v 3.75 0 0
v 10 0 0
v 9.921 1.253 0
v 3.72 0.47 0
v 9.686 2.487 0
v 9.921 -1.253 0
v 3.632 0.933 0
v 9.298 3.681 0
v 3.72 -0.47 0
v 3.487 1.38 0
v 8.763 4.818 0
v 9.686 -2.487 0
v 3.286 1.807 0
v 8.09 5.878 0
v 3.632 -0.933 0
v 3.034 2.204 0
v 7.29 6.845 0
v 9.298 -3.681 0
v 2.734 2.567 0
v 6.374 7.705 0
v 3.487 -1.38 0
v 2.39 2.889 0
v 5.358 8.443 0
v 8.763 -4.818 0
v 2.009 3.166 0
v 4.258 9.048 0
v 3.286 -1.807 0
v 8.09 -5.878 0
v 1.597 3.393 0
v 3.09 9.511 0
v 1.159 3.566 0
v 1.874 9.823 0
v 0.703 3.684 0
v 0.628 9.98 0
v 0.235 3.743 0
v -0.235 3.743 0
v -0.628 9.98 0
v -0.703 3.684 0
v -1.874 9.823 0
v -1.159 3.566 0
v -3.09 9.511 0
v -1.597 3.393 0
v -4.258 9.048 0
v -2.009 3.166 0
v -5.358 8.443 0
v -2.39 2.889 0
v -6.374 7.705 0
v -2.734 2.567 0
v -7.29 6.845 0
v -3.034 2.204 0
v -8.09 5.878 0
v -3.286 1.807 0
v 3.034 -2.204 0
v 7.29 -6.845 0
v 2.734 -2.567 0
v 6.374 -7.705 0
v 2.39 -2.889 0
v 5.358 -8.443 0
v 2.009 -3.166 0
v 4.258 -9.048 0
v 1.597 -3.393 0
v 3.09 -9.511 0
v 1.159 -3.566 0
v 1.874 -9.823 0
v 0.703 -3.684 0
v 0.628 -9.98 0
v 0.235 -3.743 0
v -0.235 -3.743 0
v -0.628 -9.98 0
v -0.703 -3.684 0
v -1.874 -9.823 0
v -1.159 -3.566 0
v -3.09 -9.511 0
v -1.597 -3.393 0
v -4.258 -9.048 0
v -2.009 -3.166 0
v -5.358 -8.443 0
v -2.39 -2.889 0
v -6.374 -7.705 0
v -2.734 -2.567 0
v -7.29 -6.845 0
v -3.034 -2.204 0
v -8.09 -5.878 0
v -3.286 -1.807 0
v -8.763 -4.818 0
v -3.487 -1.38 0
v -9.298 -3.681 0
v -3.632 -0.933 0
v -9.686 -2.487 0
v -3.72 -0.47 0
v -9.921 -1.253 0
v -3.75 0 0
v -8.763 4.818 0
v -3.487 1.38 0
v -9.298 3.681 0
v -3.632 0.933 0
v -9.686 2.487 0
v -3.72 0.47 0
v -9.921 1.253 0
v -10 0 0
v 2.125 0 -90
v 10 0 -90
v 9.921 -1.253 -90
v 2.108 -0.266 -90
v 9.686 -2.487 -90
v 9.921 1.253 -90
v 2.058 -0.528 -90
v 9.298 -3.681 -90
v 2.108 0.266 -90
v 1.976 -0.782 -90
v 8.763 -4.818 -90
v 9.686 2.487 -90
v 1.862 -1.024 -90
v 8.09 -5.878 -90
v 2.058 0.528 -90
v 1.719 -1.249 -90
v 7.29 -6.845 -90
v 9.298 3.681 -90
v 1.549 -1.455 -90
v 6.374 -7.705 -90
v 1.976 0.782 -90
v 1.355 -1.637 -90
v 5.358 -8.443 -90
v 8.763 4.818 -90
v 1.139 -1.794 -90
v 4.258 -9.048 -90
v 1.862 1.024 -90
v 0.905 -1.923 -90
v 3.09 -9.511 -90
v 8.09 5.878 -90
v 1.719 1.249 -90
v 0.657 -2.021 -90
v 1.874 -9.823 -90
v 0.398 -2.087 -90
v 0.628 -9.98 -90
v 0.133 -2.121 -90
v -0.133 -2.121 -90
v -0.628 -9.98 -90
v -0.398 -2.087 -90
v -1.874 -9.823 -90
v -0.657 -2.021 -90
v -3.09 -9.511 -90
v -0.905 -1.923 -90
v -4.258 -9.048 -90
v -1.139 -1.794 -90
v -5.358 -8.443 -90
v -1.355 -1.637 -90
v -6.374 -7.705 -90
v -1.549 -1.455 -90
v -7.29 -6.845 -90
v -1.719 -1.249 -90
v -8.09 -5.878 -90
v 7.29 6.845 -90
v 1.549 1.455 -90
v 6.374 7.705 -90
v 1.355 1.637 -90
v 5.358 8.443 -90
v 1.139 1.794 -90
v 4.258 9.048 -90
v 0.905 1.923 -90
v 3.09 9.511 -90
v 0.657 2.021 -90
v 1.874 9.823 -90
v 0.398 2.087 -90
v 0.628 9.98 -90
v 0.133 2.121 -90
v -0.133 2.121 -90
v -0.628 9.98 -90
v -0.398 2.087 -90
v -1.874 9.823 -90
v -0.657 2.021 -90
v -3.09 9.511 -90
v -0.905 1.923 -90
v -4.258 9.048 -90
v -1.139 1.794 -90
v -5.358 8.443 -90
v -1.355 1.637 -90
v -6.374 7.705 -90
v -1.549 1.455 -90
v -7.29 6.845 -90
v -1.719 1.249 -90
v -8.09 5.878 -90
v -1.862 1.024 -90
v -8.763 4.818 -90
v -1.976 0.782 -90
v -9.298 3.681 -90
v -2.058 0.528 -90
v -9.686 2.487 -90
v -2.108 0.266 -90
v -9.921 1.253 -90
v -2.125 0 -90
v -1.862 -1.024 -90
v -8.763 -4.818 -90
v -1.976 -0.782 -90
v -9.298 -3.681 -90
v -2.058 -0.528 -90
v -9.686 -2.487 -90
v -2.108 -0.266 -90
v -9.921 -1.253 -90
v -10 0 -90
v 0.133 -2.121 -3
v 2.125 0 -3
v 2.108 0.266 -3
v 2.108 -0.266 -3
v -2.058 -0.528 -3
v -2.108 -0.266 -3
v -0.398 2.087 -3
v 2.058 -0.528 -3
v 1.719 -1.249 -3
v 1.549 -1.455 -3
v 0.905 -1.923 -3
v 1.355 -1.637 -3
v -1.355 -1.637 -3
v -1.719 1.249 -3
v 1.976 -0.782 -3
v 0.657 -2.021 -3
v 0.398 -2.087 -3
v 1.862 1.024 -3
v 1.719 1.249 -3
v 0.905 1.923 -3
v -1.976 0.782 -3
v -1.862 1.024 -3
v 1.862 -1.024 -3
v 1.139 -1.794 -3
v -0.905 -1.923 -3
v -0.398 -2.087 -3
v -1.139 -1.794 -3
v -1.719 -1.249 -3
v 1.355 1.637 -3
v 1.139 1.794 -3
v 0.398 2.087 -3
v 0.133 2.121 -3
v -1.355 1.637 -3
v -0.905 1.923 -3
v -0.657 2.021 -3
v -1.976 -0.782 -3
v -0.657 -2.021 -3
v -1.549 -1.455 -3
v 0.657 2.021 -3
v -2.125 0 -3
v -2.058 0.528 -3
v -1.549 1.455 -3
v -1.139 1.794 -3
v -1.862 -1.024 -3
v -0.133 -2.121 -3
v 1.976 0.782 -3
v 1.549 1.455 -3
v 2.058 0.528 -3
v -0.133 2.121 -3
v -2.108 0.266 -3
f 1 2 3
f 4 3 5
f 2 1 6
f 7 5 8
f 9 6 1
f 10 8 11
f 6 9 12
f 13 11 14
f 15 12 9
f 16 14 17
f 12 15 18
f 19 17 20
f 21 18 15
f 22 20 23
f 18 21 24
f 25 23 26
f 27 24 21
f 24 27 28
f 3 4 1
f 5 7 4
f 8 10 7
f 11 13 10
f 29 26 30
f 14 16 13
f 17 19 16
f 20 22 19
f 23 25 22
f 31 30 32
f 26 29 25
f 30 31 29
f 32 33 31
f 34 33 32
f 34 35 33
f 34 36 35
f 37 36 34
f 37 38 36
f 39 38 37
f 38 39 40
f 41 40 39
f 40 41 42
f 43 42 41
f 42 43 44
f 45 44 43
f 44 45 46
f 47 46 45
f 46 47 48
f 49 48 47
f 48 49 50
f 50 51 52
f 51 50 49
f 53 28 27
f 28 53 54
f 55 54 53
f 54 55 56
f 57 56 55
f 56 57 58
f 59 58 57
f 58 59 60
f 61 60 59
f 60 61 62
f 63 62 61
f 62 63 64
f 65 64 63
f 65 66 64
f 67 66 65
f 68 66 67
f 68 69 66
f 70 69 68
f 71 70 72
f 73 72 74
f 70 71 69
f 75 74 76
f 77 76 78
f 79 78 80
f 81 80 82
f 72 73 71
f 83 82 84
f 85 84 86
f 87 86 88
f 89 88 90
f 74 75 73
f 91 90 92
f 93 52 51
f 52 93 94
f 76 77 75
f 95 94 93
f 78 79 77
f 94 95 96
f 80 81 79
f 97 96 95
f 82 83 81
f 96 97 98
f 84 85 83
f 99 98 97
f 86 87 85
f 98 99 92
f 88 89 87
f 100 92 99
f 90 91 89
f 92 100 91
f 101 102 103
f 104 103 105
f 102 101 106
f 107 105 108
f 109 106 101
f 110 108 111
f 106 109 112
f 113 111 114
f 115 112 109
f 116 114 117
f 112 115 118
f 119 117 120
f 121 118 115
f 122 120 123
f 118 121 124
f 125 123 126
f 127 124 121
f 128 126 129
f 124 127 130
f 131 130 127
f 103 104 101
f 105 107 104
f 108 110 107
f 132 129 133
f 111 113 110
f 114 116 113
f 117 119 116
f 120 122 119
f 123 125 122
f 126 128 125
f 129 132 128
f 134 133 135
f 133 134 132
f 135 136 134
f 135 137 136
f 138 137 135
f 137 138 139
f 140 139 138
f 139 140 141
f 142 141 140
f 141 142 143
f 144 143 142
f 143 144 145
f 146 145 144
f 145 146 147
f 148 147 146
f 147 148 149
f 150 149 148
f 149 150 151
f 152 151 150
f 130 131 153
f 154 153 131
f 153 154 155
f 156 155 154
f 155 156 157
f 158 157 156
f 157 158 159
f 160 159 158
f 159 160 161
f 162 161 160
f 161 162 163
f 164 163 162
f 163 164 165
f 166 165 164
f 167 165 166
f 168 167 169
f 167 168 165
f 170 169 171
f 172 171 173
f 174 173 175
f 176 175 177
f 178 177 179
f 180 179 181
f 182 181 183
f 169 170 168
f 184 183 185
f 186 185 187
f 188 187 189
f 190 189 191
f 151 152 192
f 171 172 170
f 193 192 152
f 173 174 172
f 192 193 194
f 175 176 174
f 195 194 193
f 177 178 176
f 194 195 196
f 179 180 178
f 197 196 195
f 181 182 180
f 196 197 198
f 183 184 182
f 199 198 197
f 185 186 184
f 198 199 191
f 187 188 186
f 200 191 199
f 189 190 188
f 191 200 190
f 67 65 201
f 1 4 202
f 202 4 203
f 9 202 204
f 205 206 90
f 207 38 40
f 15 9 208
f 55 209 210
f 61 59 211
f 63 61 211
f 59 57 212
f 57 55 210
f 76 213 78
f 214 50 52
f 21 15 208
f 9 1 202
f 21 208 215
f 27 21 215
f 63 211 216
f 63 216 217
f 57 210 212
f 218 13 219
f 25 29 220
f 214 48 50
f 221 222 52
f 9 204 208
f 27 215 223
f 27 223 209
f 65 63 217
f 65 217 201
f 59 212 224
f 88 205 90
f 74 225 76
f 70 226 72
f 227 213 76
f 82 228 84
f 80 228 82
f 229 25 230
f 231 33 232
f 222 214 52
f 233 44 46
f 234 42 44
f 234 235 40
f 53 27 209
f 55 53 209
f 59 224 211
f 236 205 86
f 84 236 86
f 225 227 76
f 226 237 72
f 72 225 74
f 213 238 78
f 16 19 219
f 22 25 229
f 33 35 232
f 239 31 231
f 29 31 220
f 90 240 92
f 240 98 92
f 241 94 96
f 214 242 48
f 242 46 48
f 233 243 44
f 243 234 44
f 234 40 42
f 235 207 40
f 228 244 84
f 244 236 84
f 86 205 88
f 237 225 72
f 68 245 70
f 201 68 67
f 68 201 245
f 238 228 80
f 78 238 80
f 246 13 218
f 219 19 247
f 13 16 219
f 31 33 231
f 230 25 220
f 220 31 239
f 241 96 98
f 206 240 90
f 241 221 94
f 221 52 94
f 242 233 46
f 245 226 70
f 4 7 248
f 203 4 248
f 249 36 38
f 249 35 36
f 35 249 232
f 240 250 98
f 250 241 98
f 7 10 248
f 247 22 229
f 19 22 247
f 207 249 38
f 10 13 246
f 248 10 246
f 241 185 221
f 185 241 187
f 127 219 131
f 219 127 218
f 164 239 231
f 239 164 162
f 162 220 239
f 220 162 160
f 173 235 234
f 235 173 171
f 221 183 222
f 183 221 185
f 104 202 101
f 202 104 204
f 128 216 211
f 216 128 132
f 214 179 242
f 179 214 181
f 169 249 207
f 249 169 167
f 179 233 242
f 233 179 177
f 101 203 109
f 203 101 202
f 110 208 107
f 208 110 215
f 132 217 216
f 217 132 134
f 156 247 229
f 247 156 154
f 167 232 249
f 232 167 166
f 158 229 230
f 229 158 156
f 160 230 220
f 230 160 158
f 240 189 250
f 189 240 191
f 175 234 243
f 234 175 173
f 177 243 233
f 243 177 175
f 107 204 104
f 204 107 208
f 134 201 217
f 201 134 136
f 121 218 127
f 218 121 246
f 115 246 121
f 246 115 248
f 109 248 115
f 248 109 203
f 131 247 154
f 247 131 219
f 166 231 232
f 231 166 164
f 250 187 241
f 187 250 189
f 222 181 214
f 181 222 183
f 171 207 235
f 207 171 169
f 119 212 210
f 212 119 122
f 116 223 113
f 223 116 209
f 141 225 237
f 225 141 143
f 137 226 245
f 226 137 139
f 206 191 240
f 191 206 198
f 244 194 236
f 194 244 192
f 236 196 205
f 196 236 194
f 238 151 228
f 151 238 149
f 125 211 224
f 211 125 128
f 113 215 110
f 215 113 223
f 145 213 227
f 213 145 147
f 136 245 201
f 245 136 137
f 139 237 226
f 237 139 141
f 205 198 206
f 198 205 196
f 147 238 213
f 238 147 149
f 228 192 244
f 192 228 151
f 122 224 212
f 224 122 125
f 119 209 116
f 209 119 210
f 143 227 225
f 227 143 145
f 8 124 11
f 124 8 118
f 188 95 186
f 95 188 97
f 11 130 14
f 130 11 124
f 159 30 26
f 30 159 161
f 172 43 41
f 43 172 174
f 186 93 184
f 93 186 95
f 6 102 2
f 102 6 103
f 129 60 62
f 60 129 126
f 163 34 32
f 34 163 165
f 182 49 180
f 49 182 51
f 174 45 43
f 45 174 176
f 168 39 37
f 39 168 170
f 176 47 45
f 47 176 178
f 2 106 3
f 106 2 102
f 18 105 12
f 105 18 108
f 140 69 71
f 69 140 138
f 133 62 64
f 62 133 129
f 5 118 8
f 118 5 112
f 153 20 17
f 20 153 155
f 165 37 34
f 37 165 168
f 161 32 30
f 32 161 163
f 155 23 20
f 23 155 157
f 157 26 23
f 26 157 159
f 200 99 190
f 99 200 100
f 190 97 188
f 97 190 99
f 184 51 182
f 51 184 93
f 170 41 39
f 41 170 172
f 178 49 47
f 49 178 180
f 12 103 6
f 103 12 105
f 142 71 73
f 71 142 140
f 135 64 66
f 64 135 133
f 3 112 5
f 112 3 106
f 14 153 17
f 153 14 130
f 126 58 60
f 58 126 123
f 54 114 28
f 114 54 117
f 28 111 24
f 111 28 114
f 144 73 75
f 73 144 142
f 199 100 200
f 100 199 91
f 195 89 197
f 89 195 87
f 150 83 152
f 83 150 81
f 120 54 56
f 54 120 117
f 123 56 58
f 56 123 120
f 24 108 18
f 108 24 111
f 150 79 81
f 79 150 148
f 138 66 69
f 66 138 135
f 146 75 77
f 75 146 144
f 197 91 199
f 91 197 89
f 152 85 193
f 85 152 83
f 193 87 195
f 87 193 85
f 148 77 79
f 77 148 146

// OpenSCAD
$fn = 50;


difference() {
	union() {
		translate(v = [0, 0, -90.0000000000]) {
			cylinder(h = 90, r = 10.0000000000);
		}
		cylinder(h = 0, r = 16.0000000000);
	}
	union() {
		translate(v = [0, 0, 0]) {
			rotate(a = [0, 0, 0]) {
				difference() {
					union() {
						#translate(v = [0, 0, -90.0000000000]) {
							cylinder(h = 90, r = 2.0000000000);
						}
						#translate(v = [0, 0, -3]) {
							cylinder(h = 3, r1 = 2.1250000000, r2 = 3.7500000000);
						}
						#translate(v = [0, 0, -90.0000000000]) {
							cylinder(h = 90, r = 2.1250000000);
						}
						#translate(v = [0, 0, -90.0000000000]) {
							cylinder(h = 90, r = 2.0000000000);
						}
					}
					union();
				}
			}
		}
	}
}
